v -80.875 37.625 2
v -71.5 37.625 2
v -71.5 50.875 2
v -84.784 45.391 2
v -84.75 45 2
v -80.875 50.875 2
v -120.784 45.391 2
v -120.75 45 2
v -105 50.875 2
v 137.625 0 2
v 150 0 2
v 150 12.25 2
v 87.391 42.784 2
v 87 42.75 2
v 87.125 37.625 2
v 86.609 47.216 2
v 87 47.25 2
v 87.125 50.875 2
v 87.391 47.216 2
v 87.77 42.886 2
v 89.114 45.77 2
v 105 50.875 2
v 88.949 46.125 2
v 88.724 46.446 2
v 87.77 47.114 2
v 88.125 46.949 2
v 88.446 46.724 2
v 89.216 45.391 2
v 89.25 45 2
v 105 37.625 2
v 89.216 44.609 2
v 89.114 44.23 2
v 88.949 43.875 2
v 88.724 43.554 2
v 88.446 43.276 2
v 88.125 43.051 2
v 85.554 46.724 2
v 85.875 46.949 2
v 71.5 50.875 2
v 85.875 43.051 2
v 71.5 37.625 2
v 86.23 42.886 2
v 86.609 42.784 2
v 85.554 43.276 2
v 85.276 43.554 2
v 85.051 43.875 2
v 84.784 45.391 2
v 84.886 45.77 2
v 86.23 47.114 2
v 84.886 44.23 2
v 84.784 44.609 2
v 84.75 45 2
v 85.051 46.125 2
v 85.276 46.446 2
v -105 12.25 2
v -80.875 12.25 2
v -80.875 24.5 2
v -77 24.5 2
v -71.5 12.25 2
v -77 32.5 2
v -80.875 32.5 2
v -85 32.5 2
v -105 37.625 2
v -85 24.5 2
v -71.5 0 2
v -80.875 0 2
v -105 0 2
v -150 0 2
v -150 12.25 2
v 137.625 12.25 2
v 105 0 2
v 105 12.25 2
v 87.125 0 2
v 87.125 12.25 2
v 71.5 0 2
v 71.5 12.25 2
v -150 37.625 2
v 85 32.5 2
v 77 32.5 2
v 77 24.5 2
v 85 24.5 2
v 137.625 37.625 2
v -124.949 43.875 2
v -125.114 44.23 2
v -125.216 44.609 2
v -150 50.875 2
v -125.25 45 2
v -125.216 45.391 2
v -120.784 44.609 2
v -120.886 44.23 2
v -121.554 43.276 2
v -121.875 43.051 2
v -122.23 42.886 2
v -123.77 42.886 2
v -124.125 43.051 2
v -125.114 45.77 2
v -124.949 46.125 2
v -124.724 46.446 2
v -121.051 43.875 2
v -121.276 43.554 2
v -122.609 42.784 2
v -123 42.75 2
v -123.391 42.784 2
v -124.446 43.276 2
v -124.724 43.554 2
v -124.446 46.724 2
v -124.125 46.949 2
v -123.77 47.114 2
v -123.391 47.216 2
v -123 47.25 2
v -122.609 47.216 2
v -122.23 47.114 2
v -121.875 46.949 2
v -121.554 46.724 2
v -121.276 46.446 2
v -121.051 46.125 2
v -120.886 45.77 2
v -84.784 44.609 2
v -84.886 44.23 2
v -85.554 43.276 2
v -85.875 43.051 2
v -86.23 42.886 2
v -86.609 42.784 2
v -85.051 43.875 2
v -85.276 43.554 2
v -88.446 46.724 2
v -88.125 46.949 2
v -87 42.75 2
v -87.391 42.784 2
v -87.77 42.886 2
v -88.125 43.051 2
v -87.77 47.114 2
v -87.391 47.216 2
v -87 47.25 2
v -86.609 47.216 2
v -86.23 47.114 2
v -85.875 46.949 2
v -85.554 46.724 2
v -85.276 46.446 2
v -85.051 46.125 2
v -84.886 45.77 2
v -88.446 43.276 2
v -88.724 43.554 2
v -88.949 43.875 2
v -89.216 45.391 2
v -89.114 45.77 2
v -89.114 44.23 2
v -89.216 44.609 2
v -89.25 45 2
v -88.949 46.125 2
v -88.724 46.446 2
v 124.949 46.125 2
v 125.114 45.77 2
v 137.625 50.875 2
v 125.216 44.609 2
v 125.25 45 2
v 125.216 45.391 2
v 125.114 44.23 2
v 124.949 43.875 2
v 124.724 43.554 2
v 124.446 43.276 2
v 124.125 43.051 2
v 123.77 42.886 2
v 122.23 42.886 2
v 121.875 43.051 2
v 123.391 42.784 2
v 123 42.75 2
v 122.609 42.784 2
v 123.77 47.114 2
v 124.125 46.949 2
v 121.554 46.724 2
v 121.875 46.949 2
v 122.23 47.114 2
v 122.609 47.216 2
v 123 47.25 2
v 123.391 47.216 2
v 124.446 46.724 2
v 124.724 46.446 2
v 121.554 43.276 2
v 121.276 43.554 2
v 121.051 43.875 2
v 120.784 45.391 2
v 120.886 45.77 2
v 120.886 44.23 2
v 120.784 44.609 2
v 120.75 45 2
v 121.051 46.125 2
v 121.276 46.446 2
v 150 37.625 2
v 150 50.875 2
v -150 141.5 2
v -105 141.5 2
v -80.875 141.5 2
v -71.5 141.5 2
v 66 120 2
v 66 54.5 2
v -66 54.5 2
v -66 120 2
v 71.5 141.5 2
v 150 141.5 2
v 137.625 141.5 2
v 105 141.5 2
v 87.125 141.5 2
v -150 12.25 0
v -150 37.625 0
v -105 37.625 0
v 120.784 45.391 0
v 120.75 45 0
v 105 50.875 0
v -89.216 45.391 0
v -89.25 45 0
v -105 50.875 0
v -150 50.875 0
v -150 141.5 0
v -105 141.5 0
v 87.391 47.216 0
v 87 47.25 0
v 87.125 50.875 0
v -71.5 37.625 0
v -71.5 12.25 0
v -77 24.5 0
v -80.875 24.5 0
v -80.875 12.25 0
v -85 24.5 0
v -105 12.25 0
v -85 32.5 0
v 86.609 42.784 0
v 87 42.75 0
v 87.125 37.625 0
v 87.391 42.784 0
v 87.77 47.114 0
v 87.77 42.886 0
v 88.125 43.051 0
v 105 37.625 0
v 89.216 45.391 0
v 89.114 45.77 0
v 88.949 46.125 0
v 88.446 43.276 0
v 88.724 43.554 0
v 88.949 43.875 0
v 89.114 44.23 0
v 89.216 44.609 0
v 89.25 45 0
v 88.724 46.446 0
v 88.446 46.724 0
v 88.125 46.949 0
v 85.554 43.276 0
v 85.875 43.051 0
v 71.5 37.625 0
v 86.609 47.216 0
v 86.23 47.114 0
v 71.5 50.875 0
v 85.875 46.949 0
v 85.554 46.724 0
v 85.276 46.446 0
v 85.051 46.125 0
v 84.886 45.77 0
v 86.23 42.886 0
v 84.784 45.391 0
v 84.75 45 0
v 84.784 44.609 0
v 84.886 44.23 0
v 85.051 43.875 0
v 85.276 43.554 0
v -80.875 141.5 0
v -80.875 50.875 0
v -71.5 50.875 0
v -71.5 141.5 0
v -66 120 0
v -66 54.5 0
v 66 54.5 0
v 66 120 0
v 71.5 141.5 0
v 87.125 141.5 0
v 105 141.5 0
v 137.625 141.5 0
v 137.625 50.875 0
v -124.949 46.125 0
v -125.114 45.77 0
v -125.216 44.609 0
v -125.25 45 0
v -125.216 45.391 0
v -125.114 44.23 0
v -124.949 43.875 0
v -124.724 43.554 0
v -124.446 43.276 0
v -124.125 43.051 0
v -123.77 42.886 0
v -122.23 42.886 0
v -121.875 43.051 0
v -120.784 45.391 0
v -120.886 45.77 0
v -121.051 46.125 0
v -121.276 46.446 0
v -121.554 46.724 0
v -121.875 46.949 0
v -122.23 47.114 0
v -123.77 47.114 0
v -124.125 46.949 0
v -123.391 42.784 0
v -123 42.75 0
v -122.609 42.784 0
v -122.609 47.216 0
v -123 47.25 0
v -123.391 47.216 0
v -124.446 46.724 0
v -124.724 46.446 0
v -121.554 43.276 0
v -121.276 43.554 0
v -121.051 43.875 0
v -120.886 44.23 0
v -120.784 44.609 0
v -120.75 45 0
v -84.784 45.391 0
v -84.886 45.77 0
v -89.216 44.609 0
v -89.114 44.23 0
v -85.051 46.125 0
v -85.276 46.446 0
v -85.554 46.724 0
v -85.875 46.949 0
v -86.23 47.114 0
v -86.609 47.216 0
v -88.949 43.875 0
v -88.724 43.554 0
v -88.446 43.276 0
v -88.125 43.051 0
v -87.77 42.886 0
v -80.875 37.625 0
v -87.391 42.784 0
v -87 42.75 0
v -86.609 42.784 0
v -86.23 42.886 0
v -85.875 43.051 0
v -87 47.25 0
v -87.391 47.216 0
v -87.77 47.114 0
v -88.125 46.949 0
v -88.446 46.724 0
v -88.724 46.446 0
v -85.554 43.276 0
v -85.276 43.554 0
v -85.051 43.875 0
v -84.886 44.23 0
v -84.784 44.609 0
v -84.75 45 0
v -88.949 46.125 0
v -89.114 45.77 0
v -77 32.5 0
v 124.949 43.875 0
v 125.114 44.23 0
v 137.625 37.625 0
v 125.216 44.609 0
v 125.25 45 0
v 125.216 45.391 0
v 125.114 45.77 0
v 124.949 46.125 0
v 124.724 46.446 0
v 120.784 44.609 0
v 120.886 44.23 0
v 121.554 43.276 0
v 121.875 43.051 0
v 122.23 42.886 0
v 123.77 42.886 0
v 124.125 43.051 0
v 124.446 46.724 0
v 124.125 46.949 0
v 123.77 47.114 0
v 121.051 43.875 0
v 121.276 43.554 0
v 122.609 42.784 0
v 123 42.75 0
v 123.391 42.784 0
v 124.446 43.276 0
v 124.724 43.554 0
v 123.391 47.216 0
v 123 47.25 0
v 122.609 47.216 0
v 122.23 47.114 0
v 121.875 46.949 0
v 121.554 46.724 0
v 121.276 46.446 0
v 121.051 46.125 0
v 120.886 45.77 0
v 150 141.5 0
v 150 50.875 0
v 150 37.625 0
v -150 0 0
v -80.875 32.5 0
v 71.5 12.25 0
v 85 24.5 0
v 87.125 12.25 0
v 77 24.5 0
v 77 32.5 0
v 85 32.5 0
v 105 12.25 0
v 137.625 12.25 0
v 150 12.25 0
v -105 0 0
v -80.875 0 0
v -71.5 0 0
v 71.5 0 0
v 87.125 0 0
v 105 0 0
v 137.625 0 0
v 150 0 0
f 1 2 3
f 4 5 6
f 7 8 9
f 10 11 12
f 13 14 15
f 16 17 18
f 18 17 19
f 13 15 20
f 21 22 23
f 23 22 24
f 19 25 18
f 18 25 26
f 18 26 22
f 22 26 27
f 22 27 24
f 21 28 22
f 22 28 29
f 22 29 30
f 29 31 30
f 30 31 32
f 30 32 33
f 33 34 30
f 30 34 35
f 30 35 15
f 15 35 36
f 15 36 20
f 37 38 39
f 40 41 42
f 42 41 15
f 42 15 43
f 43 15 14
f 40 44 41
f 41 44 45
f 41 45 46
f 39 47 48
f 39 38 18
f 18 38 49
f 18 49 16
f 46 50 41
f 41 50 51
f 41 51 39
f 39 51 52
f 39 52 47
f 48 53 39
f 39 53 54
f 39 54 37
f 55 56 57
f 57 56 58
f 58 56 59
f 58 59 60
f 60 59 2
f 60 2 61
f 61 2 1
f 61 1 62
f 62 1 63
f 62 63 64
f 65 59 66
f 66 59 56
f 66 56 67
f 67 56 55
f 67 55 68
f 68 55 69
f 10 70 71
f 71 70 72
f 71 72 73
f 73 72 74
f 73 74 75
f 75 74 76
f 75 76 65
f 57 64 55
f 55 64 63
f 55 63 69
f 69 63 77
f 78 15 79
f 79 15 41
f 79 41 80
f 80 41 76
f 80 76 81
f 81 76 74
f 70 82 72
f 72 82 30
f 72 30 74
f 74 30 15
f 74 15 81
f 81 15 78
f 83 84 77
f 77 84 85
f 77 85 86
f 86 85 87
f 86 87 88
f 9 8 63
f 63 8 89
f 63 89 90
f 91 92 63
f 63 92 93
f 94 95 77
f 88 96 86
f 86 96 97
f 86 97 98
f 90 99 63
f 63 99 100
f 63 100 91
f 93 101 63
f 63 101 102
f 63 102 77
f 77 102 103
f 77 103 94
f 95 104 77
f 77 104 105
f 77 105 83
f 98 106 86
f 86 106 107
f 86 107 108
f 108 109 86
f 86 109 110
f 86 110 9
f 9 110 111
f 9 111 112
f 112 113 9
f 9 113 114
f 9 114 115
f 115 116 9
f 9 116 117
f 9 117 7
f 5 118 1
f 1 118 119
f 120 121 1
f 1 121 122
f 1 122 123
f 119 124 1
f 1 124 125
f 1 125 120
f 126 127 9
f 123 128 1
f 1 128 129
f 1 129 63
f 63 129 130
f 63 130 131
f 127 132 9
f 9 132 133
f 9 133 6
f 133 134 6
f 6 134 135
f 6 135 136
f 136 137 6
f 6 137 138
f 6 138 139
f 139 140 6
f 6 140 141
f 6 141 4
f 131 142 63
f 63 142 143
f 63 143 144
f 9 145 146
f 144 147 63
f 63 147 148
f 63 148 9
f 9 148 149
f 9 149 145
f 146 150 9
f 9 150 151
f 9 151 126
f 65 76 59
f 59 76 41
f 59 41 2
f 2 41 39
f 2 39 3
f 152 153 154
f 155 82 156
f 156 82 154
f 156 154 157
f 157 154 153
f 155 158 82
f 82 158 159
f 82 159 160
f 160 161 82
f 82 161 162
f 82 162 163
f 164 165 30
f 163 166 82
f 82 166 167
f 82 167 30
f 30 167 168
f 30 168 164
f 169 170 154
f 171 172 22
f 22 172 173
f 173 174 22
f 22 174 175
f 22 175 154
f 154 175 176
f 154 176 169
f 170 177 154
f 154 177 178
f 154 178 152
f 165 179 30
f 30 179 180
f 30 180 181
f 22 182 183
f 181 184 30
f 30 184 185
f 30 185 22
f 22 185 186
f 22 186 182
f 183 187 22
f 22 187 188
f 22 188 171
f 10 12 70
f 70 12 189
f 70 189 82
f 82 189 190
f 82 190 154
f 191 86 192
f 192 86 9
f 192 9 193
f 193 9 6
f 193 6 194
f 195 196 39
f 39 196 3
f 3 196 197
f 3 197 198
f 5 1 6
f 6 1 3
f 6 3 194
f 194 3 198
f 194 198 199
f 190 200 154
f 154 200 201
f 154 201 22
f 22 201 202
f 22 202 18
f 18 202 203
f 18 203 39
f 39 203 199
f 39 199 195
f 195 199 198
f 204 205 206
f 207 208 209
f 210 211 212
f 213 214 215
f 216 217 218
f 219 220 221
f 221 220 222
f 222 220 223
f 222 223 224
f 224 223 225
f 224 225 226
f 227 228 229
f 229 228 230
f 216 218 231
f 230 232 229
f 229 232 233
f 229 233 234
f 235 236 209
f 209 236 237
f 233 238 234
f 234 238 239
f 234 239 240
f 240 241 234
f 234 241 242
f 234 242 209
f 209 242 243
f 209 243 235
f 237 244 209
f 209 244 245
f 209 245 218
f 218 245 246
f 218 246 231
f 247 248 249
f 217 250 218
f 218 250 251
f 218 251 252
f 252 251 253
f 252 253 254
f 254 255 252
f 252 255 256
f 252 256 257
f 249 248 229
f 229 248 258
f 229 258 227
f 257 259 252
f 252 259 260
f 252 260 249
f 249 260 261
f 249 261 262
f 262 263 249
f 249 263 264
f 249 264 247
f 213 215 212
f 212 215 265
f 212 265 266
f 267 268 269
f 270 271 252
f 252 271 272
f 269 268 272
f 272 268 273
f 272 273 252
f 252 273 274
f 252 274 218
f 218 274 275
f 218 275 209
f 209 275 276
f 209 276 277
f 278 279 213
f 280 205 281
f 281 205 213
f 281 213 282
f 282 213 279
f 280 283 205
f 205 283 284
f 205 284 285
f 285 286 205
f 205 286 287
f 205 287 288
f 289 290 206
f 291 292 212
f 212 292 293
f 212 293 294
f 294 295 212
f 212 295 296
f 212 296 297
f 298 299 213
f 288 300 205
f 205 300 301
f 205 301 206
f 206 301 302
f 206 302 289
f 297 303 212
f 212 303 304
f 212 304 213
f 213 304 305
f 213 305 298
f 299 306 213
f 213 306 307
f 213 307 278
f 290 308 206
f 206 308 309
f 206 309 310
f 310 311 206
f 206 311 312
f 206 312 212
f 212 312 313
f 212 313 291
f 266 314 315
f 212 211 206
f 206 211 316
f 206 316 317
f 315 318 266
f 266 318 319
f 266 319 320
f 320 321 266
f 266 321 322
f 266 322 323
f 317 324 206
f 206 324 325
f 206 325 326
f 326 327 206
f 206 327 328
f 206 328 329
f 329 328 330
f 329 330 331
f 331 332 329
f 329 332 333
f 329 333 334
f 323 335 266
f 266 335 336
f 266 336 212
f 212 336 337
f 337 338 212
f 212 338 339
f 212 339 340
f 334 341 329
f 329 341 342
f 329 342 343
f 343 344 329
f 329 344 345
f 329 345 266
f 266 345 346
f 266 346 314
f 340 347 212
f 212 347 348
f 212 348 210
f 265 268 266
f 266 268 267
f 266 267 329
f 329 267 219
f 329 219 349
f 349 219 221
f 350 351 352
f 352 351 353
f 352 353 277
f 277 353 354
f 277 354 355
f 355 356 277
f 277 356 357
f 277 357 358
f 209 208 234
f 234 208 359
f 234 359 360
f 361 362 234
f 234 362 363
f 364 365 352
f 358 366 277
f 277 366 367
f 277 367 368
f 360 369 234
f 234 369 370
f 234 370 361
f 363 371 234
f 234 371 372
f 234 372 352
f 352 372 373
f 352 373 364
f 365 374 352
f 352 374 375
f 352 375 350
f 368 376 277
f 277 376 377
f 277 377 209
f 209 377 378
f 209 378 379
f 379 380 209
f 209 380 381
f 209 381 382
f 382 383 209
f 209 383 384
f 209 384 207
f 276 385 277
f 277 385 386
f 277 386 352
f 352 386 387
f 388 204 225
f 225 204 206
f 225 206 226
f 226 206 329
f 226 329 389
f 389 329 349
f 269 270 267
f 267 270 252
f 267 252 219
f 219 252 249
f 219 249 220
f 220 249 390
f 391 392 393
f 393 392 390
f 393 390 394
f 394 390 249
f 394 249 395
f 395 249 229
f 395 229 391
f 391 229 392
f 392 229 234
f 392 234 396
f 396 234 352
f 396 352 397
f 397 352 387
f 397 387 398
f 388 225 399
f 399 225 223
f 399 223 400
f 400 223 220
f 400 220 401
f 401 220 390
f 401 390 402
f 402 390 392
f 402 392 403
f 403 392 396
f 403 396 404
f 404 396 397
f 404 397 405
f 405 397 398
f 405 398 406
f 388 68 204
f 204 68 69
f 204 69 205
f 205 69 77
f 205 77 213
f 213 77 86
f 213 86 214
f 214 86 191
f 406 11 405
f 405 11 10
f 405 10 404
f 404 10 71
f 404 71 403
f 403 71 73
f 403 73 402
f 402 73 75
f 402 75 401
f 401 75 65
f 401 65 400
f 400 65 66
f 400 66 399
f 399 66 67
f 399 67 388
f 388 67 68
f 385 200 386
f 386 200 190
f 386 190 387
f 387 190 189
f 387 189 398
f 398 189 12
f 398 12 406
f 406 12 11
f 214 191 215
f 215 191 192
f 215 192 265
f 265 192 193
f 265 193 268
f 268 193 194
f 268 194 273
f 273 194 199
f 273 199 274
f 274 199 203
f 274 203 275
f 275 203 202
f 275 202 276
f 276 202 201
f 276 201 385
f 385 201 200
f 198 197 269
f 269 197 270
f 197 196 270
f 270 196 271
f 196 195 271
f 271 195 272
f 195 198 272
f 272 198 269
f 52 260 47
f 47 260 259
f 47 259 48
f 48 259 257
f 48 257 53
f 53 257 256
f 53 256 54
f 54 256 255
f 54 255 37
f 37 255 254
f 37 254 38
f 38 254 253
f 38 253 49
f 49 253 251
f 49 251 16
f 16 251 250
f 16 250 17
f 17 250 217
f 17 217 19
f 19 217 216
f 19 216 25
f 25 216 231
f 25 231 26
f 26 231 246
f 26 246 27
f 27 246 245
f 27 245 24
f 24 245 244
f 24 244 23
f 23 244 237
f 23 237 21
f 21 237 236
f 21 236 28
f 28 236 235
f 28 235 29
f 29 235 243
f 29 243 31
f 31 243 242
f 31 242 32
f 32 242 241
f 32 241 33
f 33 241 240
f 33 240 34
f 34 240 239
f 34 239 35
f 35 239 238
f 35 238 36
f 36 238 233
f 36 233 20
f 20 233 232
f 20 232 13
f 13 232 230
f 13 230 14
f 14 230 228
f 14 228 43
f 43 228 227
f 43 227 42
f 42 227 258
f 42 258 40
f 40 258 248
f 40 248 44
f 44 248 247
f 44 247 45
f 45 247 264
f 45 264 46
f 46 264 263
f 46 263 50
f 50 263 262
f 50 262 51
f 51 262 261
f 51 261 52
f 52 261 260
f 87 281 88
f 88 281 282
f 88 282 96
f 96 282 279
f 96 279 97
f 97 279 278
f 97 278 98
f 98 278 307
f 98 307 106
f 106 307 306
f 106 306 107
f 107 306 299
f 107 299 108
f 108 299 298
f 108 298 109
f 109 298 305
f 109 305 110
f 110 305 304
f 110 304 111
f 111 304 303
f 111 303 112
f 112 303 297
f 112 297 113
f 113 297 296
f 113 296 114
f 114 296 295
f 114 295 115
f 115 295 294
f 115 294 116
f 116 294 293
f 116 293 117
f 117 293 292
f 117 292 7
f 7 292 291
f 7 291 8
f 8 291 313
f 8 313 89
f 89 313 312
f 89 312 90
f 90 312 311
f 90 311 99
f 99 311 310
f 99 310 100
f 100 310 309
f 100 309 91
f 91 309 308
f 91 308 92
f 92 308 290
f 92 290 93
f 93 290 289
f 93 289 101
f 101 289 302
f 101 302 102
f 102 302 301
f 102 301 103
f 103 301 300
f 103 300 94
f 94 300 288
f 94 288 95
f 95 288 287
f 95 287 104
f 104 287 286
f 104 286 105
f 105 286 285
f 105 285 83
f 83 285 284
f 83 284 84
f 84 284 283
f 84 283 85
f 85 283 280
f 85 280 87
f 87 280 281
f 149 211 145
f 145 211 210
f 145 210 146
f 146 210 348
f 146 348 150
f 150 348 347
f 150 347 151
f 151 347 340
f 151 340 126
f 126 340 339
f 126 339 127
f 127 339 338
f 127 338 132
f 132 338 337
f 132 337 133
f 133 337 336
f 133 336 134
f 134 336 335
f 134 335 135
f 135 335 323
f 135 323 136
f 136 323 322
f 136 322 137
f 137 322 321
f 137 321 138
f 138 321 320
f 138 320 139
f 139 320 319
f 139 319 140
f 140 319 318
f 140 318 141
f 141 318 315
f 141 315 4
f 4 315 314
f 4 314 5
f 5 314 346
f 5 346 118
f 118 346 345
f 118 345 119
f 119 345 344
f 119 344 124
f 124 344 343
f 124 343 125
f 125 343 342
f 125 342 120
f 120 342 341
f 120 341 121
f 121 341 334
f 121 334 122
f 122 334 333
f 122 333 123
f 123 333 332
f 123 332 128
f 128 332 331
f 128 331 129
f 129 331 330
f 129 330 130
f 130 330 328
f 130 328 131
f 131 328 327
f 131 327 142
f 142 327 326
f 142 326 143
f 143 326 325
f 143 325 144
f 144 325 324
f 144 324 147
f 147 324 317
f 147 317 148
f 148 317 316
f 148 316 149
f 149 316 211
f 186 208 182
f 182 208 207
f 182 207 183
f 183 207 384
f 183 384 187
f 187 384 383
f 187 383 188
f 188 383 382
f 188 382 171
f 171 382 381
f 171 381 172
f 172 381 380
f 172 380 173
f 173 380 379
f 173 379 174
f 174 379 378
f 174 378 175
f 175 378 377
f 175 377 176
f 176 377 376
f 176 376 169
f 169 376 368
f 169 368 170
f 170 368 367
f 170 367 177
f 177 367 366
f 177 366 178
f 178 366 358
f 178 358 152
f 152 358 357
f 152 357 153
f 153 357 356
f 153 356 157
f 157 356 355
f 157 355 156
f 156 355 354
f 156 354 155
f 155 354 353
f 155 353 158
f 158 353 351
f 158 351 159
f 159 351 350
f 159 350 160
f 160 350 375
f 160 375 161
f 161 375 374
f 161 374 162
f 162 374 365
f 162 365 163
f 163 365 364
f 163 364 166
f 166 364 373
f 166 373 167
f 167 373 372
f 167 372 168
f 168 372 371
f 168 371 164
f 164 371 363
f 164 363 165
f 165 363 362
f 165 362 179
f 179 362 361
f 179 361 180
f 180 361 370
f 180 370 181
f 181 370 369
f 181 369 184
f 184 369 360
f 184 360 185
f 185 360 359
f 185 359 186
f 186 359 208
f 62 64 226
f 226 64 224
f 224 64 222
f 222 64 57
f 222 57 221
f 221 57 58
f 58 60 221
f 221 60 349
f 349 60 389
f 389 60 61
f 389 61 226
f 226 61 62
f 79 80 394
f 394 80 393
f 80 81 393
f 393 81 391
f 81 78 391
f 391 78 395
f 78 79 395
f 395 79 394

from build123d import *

# Parameters (mm, degrees)
SK_PANEL_W              = 300
SK_PANEL_H              = 141.5
EX_PANEL_DEPTH          = 2
SK_DRAWEROPENING_W      = 132
SK_DRAWEROPENING_H      = 65.5
CUT_DRAWEROPENING_DEPTH = 2
SK_CLIFFBOLTS_R         = 2.25
CUT_CLIFFBOLTS_DEPTH    = 2
SK_CLIFFCABLES_W        = 8
SK_CLIFFCABLES_H        = 8
CUT_CLIFFCABLES_DEPTH   = 2


with BuildPart() as part:
    # SK_Panel → EX_Panel (new body)
    with BuildSketch(Plane.XY):
        with Locations((0, 70.75)):
            Rectangle(SK_PANEL_W, SK_PANEL_H)
    extrude(amount=EX_PANEL_DEPTH)

    # SK_DrawerOpening → CUT_DrawerOpening (cut)
    with BuildSketch(Plane.XY):
        with Locations((0, 87.25)):
            Rectangle(SK_DRAWEROPENING_W, SK_DRAWEROPENING_H)
    extrude(amount=CUT_DRAWEROPENING_DEPTH, mode=Mode.SUBTRACT)

    # SK_CliffBolts → CUT_CliffBolts (cut)
    with BuildSketch(Plane.XY):
        with Locations((123, 45)):
            Circle(SK_CLIFFBOLTS_R)
        with Locations((87, 45)):
            Circle(SK_CLIFFBOLTS_R)
        with Locations((-123, 45)):
            Circle(SK_CLIFFBOLTS_R)
        with Locations((-87, 45)):
            Circle(SK_CLIFFBOLTS_R)
    extrude(amount=CUT_CLIFFBOLTS_DEPTH, mode=Mode.SUBTRACT)

    # SK_CliffCables → CUT_CliffCables (cut)
    with BuildSketch(Plane.XY):
        with Locations((81, 28.5)):
            Rectangle(SK_CLIFFCABLES_W, SK_CLIFFCABLES_H)
        with Locations((-81, 28.5)):
            Rectangle(SK_CLIFFCABLES_W, SK_CLIFFCABLES_H)
    extrude(amount=CUT_CLIFFCABLES_DEPTH, mode=Mode.SUBTRACT)


solid = part.part
